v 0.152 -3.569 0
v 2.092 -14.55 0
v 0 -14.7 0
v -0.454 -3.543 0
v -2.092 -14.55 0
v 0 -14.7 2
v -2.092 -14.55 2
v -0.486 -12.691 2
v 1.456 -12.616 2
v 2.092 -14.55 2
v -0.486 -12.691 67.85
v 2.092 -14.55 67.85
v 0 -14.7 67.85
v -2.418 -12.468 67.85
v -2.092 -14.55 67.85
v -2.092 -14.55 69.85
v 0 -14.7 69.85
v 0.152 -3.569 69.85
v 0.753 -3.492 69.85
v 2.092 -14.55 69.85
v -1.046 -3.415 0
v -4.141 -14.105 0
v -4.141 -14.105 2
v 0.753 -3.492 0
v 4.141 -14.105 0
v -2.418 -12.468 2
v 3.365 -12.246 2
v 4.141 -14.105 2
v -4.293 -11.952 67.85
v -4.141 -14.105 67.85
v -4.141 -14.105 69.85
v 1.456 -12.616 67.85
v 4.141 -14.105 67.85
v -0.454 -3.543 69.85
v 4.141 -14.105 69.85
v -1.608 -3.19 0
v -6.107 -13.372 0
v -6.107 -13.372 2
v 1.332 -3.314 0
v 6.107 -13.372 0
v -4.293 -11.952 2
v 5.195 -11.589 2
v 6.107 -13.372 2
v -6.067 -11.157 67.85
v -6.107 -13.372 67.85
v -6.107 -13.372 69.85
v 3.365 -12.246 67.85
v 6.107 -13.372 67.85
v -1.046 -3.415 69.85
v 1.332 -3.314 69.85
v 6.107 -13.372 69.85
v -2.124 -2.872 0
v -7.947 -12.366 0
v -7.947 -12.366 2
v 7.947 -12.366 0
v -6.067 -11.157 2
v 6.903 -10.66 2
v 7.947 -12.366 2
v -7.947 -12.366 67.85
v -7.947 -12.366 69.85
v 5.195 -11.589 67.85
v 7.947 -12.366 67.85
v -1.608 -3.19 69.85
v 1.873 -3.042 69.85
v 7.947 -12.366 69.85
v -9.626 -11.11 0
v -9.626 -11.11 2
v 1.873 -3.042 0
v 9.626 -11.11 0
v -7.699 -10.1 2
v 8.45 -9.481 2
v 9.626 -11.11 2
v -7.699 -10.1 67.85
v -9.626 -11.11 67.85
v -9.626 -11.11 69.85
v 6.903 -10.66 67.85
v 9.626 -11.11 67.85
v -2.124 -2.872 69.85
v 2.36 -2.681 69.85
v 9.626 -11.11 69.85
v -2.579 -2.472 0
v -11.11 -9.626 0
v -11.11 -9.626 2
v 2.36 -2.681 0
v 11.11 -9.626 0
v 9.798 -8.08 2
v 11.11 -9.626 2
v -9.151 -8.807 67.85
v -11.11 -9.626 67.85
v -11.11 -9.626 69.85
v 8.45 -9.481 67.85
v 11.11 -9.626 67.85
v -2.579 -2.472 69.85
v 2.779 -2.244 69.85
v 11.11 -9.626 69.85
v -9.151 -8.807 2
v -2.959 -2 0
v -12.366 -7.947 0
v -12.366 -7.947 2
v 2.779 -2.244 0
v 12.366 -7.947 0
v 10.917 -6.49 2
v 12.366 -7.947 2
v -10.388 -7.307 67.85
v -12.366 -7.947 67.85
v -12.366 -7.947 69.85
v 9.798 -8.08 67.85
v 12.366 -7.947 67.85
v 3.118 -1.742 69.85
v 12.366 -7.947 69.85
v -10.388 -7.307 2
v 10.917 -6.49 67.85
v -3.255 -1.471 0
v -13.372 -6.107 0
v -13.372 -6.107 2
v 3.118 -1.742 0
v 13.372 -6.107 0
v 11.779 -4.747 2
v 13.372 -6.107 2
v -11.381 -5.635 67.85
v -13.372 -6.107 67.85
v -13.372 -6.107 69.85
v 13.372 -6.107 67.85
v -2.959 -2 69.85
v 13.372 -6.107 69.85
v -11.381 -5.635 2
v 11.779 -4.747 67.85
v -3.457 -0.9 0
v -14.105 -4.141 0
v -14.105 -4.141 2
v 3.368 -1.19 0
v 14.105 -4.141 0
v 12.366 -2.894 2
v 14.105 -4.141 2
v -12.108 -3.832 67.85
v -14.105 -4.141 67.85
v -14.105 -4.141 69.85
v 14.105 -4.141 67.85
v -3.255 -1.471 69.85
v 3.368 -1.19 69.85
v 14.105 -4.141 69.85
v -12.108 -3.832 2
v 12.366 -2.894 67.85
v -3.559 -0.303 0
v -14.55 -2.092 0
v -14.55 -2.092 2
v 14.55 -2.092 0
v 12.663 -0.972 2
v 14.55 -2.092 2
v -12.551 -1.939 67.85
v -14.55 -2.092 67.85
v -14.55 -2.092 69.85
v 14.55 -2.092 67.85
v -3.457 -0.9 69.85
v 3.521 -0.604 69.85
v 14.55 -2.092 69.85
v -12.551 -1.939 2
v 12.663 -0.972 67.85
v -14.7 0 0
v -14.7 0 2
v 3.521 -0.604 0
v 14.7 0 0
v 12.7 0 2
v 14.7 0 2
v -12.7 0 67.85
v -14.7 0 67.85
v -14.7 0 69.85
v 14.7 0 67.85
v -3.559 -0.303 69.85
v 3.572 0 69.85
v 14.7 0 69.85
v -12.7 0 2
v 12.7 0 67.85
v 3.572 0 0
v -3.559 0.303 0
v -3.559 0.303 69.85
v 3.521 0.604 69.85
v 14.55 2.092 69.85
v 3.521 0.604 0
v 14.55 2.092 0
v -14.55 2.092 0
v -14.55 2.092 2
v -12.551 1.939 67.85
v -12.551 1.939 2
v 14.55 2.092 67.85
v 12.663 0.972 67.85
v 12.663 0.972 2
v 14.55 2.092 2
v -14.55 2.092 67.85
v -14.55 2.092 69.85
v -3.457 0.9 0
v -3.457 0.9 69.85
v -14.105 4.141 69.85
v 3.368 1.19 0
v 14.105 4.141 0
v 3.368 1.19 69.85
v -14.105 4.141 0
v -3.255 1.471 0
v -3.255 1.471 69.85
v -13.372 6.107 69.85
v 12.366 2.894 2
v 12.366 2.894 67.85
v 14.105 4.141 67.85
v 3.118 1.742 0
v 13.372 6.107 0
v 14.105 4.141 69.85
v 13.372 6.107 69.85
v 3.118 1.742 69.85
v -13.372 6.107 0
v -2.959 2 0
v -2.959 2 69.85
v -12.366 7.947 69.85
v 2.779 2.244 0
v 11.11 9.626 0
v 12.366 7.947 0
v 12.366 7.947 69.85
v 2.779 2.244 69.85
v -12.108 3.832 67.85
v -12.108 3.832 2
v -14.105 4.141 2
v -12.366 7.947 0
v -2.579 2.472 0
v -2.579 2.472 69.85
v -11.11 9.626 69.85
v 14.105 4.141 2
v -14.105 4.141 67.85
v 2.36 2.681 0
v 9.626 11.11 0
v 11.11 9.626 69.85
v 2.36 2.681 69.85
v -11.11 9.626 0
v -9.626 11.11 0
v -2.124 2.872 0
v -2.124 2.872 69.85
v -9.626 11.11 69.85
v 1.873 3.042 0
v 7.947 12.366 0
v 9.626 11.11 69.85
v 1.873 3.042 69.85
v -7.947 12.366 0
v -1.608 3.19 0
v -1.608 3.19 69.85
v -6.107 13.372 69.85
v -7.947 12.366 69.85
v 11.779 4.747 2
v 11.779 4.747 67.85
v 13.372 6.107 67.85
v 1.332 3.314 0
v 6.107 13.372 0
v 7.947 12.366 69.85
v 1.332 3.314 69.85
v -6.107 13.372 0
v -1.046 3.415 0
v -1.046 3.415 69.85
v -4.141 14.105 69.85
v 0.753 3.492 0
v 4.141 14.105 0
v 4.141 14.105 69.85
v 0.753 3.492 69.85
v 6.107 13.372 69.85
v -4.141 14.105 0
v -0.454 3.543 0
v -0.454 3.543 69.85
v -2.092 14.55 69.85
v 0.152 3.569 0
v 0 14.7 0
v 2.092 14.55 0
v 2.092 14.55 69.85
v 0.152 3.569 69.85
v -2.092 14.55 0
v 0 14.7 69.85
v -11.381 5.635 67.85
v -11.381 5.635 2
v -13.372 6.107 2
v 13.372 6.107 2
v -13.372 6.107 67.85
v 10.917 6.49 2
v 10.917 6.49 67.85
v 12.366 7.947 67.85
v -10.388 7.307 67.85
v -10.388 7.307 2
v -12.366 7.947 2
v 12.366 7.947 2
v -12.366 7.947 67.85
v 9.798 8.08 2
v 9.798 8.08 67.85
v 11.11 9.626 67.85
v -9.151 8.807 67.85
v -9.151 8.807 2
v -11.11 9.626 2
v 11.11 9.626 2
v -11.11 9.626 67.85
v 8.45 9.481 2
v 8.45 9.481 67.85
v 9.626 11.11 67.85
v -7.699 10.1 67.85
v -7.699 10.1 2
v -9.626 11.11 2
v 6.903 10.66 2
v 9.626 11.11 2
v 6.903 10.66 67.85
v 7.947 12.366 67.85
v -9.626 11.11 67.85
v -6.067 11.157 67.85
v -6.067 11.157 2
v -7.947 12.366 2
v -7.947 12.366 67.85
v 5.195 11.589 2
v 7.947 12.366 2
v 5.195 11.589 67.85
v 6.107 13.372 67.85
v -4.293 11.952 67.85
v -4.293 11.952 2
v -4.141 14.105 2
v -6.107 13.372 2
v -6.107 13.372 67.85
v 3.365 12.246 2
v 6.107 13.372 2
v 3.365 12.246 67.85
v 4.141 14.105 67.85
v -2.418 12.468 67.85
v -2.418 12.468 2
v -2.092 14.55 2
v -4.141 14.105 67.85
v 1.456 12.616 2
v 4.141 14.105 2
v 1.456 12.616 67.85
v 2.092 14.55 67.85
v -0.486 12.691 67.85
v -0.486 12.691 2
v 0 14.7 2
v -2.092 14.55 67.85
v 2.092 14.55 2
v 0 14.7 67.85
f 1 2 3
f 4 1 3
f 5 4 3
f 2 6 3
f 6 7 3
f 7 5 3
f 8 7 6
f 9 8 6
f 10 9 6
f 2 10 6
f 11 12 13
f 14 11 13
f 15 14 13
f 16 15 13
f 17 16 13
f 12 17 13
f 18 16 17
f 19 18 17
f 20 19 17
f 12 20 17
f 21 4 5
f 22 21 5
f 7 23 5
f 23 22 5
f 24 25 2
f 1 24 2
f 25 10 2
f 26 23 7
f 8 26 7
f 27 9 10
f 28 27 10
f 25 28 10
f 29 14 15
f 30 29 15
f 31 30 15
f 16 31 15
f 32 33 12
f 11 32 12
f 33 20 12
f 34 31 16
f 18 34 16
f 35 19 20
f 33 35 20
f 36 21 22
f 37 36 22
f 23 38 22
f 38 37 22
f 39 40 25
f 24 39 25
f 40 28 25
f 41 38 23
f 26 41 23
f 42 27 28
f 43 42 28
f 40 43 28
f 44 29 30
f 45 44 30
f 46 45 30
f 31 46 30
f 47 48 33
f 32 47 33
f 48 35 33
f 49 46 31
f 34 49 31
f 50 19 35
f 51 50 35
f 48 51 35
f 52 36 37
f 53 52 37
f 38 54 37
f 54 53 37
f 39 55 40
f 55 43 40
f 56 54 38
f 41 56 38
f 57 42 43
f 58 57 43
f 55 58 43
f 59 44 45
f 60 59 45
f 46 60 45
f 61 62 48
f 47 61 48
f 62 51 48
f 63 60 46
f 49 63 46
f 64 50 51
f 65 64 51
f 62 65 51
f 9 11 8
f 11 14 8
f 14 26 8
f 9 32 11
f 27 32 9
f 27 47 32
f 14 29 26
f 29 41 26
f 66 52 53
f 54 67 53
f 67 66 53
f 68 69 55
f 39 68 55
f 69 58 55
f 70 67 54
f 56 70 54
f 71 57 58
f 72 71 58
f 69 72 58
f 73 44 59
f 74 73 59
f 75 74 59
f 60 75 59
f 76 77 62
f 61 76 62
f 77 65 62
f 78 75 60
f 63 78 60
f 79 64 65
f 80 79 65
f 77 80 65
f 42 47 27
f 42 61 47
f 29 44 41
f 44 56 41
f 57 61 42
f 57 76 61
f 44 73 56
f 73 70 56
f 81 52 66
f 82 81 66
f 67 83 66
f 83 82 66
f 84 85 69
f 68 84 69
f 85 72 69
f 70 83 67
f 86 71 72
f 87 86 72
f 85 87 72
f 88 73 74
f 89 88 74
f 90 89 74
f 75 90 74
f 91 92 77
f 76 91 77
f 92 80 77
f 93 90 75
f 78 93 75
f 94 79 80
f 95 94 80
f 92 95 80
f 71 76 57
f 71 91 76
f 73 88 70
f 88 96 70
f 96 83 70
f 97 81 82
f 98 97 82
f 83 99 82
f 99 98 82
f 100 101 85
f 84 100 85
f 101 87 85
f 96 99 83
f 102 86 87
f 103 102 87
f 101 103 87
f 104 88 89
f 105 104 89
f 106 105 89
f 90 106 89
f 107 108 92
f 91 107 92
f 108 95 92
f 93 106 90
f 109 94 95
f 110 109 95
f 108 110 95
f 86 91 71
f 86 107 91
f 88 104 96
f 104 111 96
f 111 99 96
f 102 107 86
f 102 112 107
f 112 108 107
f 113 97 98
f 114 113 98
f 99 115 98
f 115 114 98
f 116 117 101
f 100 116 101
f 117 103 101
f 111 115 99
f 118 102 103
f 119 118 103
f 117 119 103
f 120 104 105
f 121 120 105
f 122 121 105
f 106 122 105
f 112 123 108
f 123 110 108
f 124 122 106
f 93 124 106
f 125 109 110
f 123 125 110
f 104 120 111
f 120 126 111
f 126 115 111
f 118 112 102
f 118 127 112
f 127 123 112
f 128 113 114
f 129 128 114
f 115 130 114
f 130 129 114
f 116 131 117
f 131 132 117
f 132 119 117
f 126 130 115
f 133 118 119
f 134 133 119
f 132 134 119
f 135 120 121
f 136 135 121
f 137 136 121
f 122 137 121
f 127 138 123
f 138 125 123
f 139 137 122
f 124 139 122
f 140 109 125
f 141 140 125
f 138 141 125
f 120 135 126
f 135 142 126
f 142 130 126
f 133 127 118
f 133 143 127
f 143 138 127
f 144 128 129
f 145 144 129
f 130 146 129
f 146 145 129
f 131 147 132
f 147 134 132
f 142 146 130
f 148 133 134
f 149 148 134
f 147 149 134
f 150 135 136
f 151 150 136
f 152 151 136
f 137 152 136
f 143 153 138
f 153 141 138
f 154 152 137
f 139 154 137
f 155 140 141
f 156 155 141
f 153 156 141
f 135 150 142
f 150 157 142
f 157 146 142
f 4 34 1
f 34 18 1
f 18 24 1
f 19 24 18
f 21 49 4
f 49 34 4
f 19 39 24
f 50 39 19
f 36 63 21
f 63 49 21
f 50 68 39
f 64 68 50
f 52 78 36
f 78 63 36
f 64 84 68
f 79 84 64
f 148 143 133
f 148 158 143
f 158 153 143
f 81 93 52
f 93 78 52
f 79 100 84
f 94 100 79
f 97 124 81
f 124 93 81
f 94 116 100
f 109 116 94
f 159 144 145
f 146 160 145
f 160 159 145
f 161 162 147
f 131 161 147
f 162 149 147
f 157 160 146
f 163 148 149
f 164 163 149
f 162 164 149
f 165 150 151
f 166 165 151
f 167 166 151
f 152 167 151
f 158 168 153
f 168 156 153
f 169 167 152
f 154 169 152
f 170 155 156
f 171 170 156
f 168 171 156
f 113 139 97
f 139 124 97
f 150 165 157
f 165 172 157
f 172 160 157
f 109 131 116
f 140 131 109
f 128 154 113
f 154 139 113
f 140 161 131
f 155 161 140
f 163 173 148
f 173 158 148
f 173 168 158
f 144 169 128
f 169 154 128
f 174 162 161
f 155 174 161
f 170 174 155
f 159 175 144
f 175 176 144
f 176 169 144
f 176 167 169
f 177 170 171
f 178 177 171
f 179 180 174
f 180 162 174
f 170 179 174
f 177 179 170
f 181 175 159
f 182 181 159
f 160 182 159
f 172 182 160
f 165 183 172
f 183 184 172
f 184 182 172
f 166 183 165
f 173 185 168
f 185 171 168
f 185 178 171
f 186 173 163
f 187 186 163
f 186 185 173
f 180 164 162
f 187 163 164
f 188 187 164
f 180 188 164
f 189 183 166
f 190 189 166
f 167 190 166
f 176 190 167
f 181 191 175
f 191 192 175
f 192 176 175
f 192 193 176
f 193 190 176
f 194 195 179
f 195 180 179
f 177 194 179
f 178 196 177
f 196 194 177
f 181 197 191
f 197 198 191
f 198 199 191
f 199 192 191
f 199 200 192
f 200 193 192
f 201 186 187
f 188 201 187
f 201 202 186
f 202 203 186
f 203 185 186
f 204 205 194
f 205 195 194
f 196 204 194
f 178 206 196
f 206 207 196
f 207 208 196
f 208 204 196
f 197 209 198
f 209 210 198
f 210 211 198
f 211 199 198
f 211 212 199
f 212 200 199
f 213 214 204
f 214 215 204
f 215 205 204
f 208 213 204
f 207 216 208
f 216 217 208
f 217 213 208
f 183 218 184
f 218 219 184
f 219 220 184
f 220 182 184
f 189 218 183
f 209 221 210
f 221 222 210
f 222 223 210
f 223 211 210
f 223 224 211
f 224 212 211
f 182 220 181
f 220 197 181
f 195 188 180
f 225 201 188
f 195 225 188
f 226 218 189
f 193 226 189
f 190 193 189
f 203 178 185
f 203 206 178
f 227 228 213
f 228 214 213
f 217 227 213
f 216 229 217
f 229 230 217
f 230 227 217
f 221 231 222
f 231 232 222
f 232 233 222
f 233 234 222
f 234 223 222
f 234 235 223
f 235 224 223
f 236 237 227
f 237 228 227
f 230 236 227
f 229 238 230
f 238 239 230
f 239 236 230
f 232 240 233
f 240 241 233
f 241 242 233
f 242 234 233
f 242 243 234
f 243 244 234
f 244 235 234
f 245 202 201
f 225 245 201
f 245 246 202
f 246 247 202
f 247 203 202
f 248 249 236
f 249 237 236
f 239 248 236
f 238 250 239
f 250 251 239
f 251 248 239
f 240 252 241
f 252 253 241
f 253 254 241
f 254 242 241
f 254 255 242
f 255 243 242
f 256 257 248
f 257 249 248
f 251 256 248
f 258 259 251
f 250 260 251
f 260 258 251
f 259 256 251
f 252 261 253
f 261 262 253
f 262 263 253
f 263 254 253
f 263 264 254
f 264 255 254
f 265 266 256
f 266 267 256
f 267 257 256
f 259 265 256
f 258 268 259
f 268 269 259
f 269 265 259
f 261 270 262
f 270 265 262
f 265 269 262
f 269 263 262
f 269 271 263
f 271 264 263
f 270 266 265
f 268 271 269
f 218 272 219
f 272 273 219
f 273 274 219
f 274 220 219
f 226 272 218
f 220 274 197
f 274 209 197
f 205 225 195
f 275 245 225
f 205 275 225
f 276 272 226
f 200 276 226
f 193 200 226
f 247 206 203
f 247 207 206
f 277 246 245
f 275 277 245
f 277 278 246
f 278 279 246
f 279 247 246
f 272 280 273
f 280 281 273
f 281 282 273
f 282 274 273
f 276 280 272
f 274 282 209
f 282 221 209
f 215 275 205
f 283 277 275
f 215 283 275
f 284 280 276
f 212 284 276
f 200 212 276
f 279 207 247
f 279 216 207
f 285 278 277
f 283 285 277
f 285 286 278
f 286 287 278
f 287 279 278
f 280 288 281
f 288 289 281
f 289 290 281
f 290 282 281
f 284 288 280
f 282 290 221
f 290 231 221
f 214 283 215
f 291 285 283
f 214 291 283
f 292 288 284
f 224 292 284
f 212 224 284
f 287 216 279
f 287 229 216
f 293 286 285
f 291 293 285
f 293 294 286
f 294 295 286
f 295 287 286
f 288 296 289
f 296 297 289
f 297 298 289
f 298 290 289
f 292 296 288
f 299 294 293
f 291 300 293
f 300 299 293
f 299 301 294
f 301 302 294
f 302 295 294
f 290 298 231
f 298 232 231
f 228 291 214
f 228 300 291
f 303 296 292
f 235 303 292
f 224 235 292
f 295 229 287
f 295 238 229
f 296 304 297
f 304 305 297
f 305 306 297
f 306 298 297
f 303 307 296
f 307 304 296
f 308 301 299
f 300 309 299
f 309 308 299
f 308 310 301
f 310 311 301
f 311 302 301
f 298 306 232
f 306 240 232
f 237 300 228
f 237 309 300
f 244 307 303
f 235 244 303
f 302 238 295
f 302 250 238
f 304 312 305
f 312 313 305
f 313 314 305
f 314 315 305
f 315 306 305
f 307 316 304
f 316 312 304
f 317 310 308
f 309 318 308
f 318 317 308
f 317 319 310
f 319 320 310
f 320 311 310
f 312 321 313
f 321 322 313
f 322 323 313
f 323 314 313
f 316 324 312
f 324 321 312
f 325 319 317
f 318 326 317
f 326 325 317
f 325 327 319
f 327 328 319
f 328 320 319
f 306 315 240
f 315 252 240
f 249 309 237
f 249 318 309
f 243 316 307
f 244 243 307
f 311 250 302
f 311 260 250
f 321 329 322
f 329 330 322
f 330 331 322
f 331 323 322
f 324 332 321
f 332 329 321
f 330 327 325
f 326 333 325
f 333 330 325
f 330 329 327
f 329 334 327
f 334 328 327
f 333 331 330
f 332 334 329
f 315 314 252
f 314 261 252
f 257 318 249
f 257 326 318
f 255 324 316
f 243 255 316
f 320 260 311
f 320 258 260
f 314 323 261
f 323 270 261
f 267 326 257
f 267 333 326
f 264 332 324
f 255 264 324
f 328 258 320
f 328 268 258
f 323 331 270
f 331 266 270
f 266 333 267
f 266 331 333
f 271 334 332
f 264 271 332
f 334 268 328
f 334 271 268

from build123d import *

# Parameters (mm, degrees)
SKETCH1_R           = 12.7
BOSS_EXTRUDE1_DEPTH = 69.85
SKETCH2_R           = 3.572
CUT_EXTRUDE3_DEPTH  = 69.85
BOSS_EXTRUDE2_START = 2
SKETCH3_R           = 14.7
SKETCH3_R_2         = 3.572
BOSS_EXTRUDE2_DEPTH = 2
BOSS_EXTRUDE3_START = 69.85
SKETCH3_2_R         = 14.7
SKETCH3_2_R_2       = 3.572
BOSS_EXTRUDE3_DEPTH = 2


with BuildPart() as part:
    # Sketch1 → Boss-Extrude1 (new body)
    with BuildSketch(Plane.XY):
        Circle(SKETCH1_R)
    extrude(amount=BOSS_EXTRUDE1_DEPTH)

    # Sketch2 → Cut-Extrude3 (cut)
    with BuildSketch(Plane.XY.offset(69.85)):
        Circle(SKETCH2_R)
    extrude(amount=-CUT_EXTRUDE3_DEPTH, mode=Mode.SUBTRACT)

    # Sketch3 → Boss-Extrude2 (add)
    with BuildSketch(Plane.XY.offset(BOSS_EXTRUDE2_START)):
        Circle(SKETCH3_R)
        Circle(SKETCH3_R_2, mode=Mode.SUBTRACT)
    extrude(amount=-BOSS_EXTRUDE2_DEPTH)

    # Sketch3<2> → Boss-Extrude3 (add)
    with BuildSketch(Plane.XY.offset(BOSS_EXTRUDE3_START)):
        Circle(SKETCH3_2_R)
        Circle(SKETCH3_2_R_2, mode=Mode.SUBTRACT)
    extrude(amount=-BOSS_EXTRUDE3_DEPTH)


solid = part.part
